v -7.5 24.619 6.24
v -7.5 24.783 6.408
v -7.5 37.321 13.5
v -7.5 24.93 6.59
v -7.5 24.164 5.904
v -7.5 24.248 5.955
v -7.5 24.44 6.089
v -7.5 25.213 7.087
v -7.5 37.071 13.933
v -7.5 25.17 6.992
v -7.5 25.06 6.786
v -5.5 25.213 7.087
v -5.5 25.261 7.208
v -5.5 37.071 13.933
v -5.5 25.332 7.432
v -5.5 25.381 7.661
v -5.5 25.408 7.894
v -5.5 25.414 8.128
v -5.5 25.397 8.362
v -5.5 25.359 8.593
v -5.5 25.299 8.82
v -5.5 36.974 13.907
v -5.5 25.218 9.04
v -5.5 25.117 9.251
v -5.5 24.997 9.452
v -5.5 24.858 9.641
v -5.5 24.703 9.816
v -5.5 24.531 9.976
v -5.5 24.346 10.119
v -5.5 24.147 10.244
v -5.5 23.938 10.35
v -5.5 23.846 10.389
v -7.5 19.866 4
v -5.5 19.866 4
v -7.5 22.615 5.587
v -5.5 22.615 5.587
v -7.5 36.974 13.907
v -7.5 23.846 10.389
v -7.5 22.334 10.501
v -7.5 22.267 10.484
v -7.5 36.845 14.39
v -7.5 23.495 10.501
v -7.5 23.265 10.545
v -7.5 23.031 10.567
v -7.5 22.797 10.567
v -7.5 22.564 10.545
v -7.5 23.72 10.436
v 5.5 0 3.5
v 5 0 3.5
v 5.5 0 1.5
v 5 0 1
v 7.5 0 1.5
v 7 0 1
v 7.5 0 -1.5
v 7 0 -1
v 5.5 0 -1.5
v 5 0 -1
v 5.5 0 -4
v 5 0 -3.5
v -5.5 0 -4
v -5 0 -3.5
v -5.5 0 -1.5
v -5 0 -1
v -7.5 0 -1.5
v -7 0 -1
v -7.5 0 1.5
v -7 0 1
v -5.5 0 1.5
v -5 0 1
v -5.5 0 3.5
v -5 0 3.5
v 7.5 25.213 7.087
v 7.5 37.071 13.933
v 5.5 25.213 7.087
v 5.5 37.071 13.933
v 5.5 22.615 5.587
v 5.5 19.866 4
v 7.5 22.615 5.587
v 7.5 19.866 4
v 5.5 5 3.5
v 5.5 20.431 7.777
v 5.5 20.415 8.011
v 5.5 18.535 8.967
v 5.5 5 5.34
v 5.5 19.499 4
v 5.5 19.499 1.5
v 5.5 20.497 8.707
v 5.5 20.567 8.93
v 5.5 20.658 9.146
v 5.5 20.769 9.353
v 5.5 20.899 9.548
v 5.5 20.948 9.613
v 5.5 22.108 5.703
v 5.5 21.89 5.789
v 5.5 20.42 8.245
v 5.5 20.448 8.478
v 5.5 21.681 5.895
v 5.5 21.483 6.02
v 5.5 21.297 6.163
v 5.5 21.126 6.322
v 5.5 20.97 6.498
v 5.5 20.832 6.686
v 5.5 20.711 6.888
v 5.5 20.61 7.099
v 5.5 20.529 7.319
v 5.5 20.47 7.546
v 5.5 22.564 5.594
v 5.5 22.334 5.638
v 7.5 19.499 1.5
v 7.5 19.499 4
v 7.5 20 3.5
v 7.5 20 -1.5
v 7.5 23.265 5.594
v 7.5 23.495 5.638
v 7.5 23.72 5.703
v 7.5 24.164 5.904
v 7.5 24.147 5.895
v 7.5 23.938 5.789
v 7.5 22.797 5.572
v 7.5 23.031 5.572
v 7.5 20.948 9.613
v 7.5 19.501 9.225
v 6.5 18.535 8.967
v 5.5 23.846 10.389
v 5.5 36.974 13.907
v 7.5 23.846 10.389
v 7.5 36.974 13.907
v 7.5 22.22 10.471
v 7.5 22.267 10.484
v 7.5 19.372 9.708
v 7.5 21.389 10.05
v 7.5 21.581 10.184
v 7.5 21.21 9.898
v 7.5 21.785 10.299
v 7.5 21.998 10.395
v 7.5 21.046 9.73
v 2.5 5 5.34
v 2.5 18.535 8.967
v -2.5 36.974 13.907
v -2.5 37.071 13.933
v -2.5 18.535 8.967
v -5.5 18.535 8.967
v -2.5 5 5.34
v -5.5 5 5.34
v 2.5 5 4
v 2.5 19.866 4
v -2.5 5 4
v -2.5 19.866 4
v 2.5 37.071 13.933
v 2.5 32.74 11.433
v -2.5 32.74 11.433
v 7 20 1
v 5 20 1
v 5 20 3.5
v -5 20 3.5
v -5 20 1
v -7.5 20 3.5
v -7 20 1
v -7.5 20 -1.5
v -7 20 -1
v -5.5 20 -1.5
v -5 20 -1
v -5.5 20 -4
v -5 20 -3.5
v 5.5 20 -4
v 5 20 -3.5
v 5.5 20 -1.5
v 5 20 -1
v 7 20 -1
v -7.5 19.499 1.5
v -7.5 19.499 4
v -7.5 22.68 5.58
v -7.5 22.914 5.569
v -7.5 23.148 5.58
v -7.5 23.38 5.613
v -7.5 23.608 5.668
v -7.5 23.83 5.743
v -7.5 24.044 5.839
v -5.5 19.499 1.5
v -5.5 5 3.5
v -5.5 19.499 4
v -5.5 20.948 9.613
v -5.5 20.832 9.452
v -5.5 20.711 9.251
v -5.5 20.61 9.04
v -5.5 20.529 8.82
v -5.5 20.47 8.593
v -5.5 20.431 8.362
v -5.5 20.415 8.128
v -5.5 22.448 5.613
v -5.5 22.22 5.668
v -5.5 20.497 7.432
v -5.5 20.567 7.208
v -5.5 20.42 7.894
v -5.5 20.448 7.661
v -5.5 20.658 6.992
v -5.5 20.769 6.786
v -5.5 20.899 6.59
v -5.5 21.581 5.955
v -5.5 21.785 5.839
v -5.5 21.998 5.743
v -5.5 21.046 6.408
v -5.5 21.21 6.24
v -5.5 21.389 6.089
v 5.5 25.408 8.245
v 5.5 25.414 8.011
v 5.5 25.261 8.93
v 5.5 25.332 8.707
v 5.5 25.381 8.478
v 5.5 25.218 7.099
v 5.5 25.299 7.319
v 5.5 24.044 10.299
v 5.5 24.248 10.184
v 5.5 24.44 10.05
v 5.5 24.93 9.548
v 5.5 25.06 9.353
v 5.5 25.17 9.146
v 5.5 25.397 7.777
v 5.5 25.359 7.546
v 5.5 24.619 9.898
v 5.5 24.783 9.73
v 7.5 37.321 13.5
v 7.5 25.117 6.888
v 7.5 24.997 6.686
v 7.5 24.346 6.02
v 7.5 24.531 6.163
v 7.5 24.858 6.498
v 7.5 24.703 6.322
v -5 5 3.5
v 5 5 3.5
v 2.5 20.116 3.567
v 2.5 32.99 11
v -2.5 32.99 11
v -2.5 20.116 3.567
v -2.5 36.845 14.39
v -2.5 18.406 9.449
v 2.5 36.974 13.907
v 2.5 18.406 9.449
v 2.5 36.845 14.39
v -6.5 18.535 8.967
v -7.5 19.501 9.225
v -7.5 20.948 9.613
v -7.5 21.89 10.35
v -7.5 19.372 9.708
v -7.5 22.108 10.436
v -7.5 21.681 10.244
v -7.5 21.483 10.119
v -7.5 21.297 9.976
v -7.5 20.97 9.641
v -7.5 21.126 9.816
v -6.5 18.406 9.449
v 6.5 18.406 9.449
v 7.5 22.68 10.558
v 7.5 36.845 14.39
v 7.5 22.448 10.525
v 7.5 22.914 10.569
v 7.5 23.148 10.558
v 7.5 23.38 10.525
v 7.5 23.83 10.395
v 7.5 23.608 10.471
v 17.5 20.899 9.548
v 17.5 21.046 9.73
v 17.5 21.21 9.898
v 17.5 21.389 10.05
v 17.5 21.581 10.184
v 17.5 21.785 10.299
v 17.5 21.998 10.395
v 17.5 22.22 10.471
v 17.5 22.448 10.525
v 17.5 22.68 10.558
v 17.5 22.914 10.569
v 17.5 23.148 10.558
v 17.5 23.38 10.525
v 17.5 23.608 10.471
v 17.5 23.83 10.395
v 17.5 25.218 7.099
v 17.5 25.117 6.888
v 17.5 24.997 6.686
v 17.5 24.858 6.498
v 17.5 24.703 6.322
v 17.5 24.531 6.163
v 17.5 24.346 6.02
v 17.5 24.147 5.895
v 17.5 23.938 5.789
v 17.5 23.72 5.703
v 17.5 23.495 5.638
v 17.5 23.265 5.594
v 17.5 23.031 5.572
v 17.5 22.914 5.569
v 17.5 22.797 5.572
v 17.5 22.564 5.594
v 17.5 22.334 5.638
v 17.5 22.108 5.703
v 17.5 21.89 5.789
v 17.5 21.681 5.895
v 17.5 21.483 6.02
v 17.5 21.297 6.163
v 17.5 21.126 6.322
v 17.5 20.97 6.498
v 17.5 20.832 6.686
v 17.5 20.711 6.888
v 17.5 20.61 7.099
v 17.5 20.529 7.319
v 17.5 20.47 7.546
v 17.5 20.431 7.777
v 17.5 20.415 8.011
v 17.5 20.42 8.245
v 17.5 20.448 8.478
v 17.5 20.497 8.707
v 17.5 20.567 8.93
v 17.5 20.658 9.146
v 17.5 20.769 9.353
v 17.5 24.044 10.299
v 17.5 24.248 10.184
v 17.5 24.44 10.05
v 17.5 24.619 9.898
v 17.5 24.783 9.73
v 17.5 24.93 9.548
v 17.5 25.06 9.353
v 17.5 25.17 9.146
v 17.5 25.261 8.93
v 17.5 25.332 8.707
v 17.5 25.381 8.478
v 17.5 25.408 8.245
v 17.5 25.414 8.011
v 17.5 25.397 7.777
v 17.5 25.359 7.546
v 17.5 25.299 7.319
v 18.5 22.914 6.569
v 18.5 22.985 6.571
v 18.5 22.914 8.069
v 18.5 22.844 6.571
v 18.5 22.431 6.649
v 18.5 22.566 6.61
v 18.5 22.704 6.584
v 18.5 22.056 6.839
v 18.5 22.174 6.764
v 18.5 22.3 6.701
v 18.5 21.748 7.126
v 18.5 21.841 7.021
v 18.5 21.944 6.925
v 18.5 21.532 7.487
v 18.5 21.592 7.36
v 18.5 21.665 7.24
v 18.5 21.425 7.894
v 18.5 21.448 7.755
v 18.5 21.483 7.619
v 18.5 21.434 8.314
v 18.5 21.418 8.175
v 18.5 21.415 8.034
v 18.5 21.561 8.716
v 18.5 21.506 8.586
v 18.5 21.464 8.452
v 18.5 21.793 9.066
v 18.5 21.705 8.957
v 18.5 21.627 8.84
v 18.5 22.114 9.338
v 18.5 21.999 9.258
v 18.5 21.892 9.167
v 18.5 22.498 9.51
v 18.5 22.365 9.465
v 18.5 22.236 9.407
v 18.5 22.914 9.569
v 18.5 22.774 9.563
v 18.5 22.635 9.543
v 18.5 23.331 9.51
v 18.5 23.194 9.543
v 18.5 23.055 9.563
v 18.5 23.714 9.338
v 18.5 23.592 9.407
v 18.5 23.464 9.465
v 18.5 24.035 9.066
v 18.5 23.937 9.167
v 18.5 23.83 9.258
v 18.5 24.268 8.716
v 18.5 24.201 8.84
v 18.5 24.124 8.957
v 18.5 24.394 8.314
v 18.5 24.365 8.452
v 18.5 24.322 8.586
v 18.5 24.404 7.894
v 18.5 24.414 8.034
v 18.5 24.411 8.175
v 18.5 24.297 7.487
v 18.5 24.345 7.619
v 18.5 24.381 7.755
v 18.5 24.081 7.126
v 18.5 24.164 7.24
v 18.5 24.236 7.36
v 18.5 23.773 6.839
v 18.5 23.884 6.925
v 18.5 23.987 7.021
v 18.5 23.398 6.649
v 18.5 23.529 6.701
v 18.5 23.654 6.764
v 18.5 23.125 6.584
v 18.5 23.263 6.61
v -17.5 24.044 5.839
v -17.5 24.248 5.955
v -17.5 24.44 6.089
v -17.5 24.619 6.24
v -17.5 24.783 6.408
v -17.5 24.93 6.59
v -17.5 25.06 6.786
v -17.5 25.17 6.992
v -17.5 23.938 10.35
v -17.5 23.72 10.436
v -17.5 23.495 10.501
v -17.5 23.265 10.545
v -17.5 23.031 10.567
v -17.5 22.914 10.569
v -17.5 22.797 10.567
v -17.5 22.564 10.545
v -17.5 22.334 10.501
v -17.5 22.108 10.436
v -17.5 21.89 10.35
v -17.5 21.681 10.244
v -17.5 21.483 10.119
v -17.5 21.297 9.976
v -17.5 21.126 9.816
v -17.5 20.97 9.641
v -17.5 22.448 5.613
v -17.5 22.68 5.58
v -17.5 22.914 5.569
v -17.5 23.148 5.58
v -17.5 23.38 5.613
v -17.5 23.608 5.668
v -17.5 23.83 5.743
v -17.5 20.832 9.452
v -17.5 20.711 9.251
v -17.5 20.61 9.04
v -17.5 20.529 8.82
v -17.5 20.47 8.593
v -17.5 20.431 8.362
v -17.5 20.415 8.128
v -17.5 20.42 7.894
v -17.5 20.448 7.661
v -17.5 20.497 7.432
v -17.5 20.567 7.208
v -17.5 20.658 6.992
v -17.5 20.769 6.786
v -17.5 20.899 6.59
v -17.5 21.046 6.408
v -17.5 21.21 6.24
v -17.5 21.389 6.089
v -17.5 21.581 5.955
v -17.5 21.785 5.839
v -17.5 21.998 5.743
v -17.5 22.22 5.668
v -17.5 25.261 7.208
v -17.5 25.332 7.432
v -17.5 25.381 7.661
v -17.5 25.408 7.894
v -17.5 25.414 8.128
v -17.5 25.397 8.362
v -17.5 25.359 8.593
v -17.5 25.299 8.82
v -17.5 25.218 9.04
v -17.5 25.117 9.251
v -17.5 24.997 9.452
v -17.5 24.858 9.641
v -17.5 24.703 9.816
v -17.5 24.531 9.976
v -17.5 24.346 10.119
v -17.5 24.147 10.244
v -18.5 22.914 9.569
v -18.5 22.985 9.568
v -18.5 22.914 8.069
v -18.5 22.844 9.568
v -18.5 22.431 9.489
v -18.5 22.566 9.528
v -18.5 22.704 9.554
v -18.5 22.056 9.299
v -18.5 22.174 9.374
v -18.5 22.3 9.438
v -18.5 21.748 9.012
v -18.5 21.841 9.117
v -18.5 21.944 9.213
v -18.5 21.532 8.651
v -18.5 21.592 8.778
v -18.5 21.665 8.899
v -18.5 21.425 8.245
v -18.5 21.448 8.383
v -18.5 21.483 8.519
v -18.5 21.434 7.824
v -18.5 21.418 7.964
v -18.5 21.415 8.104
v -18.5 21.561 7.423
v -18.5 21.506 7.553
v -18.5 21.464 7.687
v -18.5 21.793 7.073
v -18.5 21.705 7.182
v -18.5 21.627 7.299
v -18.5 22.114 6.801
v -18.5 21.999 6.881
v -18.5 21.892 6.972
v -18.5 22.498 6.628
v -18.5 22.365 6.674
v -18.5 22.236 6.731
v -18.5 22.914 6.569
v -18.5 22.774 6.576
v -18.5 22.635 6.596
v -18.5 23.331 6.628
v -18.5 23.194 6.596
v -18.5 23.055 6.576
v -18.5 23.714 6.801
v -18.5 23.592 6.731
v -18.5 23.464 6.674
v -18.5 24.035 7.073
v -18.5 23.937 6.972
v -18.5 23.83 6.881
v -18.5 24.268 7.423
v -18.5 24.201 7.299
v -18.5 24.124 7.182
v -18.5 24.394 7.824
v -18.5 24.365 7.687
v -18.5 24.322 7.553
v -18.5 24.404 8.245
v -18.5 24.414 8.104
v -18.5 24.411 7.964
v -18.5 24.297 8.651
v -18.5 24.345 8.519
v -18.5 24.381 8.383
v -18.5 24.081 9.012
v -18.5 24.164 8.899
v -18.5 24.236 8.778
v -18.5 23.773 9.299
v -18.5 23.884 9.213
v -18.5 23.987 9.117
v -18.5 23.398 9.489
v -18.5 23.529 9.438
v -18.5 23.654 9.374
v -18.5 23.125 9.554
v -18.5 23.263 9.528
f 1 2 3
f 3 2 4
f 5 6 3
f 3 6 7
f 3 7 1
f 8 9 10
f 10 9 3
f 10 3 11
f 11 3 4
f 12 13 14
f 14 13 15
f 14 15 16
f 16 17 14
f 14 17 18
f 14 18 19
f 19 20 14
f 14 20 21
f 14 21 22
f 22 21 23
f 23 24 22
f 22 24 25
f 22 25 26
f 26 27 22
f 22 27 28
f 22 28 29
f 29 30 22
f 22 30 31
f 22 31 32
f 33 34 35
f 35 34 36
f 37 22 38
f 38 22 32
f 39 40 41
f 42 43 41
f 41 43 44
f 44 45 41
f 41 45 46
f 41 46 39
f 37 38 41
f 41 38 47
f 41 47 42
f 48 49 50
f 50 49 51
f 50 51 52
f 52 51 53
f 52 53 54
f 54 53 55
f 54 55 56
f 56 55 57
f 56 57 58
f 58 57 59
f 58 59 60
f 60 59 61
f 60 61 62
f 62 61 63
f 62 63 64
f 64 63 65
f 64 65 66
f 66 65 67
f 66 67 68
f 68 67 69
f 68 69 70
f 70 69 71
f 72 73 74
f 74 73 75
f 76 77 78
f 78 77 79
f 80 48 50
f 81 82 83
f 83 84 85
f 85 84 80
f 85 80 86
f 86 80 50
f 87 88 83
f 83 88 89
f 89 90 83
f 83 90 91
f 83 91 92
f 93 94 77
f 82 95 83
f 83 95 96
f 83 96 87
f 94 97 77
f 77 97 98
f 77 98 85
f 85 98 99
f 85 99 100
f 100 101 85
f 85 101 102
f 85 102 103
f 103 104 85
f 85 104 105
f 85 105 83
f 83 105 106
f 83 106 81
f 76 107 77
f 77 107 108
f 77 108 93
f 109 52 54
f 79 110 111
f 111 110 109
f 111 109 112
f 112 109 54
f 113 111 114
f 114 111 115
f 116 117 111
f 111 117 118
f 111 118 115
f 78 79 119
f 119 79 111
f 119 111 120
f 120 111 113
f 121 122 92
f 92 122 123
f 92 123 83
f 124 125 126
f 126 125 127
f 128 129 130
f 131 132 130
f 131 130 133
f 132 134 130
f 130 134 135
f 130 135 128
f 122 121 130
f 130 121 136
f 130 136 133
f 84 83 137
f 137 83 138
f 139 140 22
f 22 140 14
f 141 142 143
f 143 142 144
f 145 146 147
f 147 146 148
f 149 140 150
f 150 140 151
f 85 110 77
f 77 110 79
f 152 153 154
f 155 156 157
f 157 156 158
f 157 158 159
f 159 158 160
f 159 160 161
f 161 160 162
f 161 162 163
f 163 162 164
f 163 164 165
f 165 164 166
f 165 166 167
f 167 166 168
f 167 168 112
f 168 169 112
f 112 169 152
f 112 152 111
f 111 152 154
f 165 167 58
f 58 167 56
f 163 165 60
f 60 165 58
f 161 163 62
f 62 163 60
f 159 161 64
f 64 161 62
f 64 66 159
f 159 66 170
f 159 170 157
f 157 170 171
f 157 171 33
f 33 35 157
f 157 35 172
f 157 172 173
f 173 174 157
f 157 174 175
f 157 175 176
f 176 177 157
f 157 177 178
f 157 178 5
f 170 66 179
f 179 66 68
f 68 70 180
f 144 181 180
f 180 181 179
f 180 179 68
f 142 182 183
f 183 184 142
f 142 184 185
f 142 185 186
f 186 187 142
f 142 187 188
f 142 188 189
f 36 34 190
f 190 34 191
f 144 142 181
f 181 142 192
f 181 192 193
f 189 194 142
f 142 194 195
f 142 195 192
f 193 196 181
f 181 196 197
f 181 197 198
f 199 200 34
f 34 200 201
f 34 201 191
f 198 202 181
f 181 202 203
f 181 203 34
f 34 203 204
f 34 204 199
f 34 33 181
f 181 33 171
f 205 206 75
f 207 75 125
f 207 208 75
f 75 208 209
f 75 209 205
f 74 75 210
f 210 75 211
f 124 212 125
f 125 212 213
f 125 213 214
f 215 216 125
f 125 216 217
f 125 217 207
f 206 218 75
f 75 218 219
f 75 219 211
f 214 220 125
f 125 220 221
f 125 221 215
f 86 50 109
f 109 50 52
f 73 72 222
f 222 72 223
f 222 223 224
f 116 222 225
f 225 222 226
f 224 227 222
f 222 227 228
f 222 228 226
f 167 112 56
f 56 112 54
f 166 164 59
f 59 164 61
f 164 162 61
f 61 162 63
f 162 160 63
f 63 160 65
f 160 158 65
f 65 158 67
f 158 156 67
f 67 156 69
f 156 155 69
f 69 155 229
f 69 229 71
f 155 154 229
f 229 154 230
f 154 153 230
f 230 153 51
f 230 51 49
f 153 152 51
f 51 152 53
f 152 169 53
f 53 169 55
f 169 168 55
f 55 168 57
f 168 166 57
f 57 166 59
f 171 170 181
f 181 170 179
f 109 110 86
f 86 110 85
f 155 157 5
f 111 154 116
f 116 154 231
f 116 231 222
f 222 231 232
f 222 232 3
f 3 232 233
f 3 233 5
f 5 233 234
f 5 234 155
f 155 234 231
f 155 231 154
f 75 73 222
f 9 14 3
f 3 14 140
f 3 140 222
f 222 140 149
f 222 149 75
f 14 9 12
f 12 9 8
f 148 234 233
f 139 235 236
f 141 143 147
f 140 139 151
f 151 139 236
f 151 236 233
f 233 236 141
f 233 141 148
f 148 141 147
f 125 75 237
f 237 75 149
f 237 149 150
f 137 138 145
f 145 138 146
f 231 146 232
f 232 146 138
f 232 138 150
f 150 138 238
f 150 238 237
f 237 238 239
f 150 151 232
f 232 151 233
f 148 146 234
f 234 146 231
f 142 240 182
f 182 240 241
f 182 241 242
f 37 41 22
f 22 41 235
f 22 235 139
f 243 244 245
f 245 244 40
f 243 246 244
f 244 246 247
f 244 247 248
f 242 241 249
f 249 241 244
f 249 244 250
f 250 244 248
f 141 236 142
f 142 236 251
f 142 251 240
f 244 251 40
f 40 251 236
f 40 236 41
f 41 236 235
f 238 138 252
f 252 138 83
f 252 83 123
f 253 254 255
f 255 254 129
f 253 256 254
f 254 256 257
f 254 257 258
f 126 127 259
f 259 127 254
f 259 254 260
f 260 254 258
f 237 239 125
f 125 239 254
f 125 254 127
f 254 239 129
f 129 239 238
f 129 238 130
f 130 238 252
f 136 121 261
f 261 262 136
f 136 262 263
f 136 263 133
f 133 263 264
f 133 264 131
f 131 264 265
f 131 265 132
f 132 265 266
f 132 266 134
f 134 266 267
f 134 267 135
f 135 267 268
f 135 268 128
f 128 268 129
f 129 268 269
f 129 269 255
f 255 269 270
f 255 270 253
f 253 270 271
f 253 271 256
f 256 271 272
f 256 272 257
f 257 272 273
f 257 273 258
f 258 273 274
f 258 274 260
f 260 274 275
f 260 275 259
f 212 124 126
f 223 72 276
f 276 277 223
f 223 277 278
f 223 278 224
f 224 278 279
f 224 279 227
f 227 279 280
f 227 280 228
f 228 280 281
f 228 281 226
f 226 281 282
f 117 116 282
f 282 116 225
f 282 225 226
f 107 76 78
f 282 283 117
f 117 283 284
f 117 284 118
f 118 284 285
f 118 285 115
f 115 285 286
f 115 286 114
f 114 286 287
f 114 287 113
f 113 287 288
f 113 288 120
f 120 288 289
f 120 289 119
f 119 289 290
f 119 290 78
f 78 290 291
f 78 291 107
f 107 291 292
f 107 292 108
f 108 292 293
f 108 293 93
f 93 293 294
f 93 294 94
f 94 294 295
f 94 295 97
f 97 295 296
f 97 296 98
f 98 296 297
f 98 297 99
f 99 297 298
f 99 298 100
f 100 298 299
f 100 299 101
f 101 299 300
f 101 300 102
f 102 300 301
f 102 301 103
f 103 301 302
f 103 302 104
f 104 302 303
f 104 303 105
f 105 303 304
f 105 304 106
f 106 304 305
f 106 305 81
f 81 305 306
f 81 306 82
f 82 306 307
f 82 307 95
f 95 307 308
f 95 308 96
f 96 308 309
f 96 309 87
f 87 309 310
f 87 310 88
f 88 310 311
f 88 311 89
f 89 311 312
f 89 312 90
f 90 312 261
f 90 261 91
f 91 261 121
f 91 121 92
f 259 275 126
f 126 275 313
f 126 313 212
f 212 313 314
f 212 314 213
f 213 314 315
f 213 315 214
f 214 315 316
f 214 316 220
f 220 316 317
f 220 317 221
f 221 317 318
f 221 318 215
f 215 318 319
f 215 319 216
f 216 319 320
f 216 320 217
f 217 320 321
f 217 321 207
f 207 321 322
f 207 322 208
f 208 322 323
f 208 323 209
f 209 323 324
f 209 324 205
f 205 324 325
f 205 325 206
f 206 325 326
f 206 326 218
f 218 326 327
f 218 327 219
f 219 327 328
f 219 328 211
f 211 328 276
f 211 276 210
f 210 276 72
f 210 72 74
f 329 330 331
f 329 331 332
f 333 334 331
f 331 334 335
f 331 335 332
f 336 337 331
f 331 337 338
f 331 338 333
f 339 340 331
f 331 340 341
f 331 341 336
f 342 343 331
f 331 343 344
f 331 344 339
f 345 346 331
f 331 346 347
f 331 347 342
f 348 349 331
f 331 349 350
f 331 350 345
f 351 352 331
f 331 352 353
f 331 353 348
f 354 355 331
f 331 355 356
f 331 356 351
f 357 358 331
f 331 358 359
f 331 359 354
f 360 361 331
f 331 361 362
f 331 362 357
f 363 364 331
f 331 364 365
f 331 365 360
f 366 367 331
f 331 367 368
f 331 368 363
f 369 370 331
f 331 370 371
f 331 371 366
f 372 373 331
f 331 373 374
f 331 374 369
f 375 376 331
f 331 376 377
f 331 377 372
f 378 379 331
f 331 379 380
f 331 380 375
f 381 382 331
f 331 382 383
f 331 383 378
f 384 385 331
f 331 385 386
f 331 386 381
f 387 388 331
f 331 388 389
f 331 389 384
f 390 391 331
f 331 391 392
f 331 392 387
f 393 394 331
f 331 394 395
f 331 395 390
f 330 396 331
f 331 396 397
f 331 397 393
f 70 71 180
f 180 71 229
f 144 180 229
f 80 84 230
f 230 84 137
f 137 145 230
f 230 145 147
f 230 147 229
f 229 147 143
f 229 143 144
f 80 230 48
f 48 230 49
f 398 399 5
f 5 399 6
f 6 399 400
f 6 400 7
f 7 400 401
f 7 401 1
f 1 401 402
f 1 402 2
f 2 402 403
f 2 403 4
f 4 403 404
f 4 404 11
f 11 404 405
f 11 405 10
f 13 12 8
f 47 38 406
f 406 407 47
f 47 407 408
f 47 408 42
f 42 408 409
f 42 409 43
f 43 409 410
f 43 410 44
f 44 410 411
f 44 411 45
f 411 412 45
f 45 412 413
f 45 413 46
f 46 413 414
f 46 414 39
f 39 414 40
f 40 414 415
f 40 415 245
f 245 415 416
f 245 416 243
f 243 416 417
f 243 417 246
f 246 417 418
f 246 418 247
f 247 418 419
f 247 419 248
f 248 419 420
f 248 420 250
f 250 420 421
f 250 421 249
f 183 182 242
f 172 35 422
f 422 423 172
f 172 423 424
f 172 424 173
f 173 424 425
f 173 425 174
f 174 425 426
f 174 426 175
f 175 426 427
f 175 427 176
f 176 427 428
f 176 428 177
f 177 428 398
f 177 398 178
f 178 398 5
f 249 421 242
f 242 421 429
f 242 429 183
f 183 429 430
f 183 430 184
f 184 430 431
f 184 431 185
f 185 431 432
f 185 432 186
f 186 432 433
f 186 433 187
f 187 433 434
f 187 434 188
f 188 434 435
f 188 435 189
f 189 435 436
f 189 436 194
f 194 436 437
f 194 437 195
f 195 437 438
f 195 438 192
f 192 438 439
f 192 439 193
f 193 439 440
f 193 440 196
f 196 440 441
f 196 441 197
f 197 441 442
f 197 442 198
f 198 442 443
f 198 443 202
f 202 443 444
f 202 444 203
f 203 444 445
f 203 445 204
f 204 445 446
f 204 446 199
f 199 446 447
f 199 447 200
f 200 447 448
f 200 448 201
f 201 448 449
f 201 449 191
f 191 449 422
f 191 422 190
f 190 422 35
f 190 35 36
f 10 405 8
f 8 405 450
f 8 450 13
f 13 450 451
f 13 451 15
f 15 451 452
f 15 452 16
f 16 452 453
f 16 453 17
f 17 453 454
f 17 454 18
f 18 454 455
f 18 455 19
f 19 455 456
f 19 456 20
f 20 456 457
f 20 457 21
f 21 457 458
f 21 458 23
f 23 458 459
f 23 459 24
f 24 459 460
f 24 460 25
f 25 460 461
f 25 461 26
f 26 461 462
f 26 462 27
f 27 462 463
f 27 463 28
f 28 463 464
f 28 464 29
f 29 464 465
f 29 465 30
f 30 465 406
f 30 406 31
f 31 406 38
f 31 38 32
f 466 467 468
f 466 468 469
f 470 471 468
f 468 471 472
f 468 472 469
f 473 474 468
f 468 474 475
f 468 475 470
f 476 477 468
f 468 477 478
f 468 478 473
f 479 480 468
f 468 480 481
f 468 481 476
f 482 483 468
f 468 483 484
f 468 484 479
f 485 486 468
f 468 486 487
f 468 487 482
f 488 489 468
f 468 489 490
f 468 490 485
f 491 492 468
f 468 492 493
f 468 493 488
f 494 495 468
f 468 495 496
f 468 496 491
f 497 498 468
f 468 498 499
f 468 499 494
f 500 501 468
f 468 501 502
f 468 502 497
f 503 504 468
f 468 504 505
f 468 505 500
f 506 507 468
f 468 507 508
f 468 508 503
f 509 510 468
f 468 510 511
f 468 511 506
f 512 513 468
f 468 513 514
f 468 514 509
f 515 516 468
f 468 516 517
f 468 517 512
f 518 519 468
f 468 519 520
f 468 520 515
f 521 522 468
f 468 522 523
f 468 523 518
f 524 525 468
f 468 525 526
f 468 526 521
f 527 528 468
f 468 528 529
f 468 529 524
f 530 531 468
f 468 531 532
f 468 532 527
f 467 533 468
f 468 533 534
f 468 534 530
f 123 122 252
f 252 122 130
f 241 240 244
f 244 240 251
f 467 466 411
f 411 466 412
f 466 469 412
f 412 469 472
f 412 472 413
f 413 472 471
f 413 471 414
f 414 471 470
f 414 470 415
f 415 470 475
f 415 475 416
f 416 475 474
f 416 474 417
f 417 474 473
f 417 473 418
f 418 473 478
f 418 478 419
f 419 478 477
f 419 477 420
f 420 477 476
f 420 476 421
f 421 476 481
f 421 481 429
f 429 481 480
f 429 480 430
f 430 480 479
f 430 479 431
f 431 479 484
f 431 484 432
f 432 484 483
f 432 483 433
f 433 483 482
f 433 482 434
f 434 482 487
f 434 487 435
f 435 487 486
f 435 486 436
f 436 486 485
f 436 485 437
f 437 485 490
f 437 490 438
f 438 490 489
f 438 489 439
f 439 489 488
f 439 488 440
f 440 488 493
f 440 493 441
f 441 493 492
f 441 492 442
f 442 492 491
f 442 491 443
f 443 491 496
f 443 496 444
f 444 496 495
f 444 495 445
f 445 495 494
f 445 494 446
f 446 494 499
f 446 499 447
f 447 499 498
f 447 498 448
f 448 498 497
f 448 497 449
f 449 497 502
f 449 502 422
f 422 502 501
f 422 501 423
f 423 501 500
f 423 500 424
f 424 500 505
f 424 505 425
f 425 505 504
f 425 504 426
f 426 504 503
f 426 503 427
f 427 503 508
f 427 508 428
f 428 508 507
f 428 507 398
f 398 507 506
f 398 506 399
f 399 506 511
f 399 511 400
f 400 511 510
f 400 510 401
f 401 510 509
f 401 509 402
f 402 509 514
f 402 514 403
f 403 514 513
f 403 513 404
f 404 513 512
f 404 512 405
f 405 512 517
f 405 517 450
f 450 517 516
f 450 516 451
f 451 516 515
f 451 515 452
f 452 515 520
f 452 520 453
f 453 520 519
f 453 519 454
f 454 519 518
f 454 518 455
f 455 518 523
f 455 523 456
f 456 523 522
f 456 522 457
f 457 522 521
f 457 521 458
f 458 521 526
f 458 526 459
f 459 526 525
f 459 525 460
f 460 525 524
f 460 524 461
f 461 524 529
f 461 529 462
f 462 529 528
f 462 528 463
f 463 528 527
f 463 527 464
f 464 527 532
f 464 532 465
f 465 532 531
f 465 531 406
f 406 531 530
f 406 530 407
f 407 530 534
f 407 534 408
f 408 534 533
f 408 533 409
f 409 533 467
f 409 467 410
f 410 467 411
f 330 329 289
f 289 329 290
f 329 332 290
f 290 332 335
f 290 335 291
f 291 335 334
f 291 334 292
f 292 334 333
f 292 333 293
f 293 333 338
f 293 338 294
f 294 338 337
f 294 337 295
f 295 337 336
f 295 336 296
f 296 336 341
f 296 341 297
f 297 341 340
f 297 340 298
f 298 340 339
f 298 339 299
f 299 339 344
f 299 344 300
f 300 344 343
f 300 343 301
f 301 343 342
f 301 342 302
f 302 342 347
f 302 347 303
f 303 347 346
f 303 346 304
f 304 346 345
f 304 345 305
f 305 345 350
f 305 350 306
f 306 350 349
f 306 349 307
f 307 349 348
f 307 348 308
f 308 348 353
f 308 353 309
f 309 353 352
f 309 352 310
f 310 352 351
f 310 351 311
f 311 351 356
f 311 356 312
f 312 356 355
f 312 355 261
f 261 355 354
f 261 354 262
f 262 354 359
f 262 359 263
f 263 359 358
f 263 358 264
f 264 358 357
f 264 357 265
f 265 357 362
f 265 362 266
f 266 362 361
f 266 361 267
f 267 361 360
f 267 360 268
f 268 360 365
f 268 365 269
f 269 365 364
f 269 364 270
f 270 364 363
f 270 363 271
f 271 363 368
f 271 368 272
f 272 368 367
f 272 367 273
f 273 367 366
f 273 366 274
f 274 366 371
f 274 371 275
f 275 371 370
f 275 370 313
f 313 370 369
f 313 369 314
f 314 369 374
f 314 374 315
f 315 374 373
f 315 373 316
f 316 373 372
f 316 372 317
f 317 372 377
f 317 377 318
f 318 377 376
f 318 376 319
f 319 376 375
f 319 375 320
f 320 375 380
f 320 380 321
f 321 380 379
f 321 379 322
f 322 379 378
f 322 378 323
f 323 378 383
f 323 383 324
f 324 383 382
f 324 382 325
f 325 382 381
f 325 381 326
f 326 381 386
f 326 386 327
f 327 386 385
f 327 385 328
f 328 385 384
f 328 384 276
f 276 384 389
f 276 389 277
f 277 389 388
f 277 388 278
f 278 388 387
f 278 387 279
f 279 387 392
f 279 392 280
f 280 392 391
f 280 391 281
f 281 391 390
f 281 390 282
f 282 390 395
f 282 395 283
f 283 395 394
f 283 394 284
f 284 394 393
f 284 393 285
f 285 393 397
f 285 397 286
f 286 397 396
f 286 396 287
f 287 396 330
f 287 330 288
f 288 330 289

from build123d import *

# Parameters (mm, degrees)
AUFSATZ_LINEAR_AUSTRAGEN1_DEPTH = 20
AUFSATZ_LINEAR_AUSTRAGEN2_DEPTH = 15
AUFSATZ_LINEAR_AUSTRAGEN4_DEPTH = 3
SCHNITT_LINEAR_AUSTRAGEN1_REACH = 22
SKIZZE7_W                       = 10
SKIZZE7_H                       = 2
SKIZZE11_W                      = 5
SKIZZE11_H                      = 14.866025404
SCHNITT_LINEAR_AUSTRAGEN4_DEPTH = 10
SKIZZE12_W                      = 5
SKIZZE12_H                      = 19.089107003
AUFSATZ_LINEAR_AUSTRAGEN7_DEPTH = 0.5
SKIZZE13_R                      = 2.5
AUFSATZ_LINEAR_AUSTRAGEN8_DEPTH = 13
SKIZZE8_W                       = 11
SKIZZE8_H                       = 5
SCHNITT_LINEAR_AUSTRAGEN5_DEPTH = 13
FASE1_SIZE                      = 1


with BuildPart() as part:
    # Skizze1 → Aufsatz-Linear austragen1 (new body)
    with BuildSketch(Plane(origin=(0, 0, 0), x_dir=(1, 0, 0), z_dir=(0, 1, 0))):
        Polygon((5.5, -4), (-5.5, -4), (-5.5, -1.5), (-7.5, -1.5), (-7.5, 1.5), (-5.5, 1.5), (-5.5, 4), (5.5, 4), (5.5, 1.5), (7.5, 1.5), (7.5, -1.5), (5.5, -1.5), align=None)
        Polygon((-5, 1), (-5, 3.5), (5, 3.5), (5, 1), (7, 1), (7, -1), (5, -1), (5, -3.5), (-5, -3.5), (-5, -1), (-7, -1), (-7, 1), align=None, mode=Mode.SUBTRACT)
    extrude(amount=AUFSATZ_LINEAR_AUSTRAGEN1_DEPTH)

    # Skizze2 → Aufsatz-Linear austragen2 (add)
    with BuildSketch(Plane.ZY.offset(7.5)):
        Polygon((13.5, 37.320508076), (13.933012702, 37.070508076), (4, 19.866025404), (4, 19.498965661), (1.5, 19.498965661), (1.5, 20), (3.5, 20), align=None)
    extrude(amount=-AUFSATZ_LINEAR_AUSTRAGEN2_DEPTH)

    # Skizze6 → Aufsatz-Linear austragen4 (add)
    with BuildSketch(Plane.ZY.offset(5.5)):
        Polygon((13.933012702, 37.070508076), (4, 0), (4, 19.866025404), align=None)
    aufsatz_linear_austragen4 = extrude(amount=-AUFSATZ_LINEAR_AUSTRAGEN4_DEPTH)

    # Skizze7 → Schnitt-Linear austragen1 (cut, up to next)
    with BuildSketch(Plane(origin=(0, 20, 0), x_dir=(1, 0, 0), z_dir=(0, 1, 0)), mode=Mode.PRIVATE) as schnitt_linear_austragen1_sk1:
        with Locations((0, -2.5)):
            Rectangle(SKIZZE7_W, SKIZZE7_H)
    schnitt_linear_austragen1_tool1 = extrude(schnitt_linear_austragen1_sk1.sketch, amount=-SCHNITT_LINEAR_AUSTRAGEN1_REACH, mode=Mode.PRIVATE) & part.part
    add(schnitt_linear_austragen1_tool1.solids().sort_by_distance((0, 20, 2.5))[0], mode=Mode.SUBTRACT)

    # Spiegeln3: Aufsatz-Linear austragen4 across plane
    add(aufsatz_linear_austragen4.mirror(Plane(origin=(0, 0, 0), x_dir=(0, 0, 1), z_dir=(1, 0, 0))))

    # Skizze11 → Schnitt-Linear austragen4 (cut)
    with BuildSketch(Plane(origin=(0, 3.234455543, -5.602241336), x_dir=(1, 0, 0), z_dir=(0, -0.5, 0.866025404))):
        with Locations((0, 26.637495374)):
            Rectangle(SKIZZE11_W, SKIZZE11_H)
    extrude(amount=-SCHNITT_LINEAR_AUSTRAGEN4_DEPTH, mode=Mode.SUBTRACT)

    # Skizze12 → Aufsatz-Linear austragen7 (add)
    with BuildSketch(Plane(origin=(0, -1, 3.732050808), x_dir=(1, 0, 0), z_dir=(0, -0.258819045, 0.965925826))):
        with Locations((-5, 29.768936686)):
            Rectangle(SKIZZE12_W, SKIZZE12_H)
    aufsatz_linear_austragen7 = extrude(amount=AUFSATZ_LINEAR_AUSTRAGEN7_DEPTH)

    # Spiegeln4: Aufsatz-Linear austragen7 across plane
    add(aufsatz_linear_austragen7.mirror(Plane(origin=(0, 0, 0), x_dir=(0, 0, 1), z_dir=(1, 0, 0))))

    # Skizze13 → Aufsatz-Linear austragen8 (add)
    with BuildSketch(Plane(origin=(5.5, 0, 0), x_dir=(0, 0, -1), z_dir=(1, 0, 0))):
        with Locations((-8.069309397, 22.914276031)):
            Circle(SKIZZE13_R)
    aufsatz_linear_austragen8 = extrude(amount=AUFSATZ_LINEAR_AUSTRAGEN8_DEPTH)

    # Skizze8 → Schnitt-Linear austragen5 (cut)
    with BuildSketch(Plane(origin=(0, 0, 3.5), x_dir=(-1, 0, 0), z_dir=(0, 0, -1))):
        with Locations((0, 2.5)):
            Rectangle(SKIZZE8_W, SKIZZE8_H)
    extrude(amount=-SCHNITT_LINEAR_AUSTRAGEN5_DEPTH, mode=Mode.SUBTRACT)

    # Spiegeln5: Aufsatz-Linear austragen8 across plane
    add(aufsatz_linear_austragen8.mirror(Plane(origin=(0, 0, 0), x_dir=(0, 0, 1), z_dir=(1, 0, 0))))

    # Fase1
    fase1_edges = [part.edges().sort_by_distance(p)[0] for p in [
        (-7.5, 18.470549277, 9.207987808),
        (7.5, 18.470549277, 9.207987808),
        (18.5, 22.914276031, 10.569309397),
        (-18.5, 22.914276031, 10.569309397),
    ]]
    chamfer(fase1_edges, length=FASE1_SIZE)


solid = part.part
